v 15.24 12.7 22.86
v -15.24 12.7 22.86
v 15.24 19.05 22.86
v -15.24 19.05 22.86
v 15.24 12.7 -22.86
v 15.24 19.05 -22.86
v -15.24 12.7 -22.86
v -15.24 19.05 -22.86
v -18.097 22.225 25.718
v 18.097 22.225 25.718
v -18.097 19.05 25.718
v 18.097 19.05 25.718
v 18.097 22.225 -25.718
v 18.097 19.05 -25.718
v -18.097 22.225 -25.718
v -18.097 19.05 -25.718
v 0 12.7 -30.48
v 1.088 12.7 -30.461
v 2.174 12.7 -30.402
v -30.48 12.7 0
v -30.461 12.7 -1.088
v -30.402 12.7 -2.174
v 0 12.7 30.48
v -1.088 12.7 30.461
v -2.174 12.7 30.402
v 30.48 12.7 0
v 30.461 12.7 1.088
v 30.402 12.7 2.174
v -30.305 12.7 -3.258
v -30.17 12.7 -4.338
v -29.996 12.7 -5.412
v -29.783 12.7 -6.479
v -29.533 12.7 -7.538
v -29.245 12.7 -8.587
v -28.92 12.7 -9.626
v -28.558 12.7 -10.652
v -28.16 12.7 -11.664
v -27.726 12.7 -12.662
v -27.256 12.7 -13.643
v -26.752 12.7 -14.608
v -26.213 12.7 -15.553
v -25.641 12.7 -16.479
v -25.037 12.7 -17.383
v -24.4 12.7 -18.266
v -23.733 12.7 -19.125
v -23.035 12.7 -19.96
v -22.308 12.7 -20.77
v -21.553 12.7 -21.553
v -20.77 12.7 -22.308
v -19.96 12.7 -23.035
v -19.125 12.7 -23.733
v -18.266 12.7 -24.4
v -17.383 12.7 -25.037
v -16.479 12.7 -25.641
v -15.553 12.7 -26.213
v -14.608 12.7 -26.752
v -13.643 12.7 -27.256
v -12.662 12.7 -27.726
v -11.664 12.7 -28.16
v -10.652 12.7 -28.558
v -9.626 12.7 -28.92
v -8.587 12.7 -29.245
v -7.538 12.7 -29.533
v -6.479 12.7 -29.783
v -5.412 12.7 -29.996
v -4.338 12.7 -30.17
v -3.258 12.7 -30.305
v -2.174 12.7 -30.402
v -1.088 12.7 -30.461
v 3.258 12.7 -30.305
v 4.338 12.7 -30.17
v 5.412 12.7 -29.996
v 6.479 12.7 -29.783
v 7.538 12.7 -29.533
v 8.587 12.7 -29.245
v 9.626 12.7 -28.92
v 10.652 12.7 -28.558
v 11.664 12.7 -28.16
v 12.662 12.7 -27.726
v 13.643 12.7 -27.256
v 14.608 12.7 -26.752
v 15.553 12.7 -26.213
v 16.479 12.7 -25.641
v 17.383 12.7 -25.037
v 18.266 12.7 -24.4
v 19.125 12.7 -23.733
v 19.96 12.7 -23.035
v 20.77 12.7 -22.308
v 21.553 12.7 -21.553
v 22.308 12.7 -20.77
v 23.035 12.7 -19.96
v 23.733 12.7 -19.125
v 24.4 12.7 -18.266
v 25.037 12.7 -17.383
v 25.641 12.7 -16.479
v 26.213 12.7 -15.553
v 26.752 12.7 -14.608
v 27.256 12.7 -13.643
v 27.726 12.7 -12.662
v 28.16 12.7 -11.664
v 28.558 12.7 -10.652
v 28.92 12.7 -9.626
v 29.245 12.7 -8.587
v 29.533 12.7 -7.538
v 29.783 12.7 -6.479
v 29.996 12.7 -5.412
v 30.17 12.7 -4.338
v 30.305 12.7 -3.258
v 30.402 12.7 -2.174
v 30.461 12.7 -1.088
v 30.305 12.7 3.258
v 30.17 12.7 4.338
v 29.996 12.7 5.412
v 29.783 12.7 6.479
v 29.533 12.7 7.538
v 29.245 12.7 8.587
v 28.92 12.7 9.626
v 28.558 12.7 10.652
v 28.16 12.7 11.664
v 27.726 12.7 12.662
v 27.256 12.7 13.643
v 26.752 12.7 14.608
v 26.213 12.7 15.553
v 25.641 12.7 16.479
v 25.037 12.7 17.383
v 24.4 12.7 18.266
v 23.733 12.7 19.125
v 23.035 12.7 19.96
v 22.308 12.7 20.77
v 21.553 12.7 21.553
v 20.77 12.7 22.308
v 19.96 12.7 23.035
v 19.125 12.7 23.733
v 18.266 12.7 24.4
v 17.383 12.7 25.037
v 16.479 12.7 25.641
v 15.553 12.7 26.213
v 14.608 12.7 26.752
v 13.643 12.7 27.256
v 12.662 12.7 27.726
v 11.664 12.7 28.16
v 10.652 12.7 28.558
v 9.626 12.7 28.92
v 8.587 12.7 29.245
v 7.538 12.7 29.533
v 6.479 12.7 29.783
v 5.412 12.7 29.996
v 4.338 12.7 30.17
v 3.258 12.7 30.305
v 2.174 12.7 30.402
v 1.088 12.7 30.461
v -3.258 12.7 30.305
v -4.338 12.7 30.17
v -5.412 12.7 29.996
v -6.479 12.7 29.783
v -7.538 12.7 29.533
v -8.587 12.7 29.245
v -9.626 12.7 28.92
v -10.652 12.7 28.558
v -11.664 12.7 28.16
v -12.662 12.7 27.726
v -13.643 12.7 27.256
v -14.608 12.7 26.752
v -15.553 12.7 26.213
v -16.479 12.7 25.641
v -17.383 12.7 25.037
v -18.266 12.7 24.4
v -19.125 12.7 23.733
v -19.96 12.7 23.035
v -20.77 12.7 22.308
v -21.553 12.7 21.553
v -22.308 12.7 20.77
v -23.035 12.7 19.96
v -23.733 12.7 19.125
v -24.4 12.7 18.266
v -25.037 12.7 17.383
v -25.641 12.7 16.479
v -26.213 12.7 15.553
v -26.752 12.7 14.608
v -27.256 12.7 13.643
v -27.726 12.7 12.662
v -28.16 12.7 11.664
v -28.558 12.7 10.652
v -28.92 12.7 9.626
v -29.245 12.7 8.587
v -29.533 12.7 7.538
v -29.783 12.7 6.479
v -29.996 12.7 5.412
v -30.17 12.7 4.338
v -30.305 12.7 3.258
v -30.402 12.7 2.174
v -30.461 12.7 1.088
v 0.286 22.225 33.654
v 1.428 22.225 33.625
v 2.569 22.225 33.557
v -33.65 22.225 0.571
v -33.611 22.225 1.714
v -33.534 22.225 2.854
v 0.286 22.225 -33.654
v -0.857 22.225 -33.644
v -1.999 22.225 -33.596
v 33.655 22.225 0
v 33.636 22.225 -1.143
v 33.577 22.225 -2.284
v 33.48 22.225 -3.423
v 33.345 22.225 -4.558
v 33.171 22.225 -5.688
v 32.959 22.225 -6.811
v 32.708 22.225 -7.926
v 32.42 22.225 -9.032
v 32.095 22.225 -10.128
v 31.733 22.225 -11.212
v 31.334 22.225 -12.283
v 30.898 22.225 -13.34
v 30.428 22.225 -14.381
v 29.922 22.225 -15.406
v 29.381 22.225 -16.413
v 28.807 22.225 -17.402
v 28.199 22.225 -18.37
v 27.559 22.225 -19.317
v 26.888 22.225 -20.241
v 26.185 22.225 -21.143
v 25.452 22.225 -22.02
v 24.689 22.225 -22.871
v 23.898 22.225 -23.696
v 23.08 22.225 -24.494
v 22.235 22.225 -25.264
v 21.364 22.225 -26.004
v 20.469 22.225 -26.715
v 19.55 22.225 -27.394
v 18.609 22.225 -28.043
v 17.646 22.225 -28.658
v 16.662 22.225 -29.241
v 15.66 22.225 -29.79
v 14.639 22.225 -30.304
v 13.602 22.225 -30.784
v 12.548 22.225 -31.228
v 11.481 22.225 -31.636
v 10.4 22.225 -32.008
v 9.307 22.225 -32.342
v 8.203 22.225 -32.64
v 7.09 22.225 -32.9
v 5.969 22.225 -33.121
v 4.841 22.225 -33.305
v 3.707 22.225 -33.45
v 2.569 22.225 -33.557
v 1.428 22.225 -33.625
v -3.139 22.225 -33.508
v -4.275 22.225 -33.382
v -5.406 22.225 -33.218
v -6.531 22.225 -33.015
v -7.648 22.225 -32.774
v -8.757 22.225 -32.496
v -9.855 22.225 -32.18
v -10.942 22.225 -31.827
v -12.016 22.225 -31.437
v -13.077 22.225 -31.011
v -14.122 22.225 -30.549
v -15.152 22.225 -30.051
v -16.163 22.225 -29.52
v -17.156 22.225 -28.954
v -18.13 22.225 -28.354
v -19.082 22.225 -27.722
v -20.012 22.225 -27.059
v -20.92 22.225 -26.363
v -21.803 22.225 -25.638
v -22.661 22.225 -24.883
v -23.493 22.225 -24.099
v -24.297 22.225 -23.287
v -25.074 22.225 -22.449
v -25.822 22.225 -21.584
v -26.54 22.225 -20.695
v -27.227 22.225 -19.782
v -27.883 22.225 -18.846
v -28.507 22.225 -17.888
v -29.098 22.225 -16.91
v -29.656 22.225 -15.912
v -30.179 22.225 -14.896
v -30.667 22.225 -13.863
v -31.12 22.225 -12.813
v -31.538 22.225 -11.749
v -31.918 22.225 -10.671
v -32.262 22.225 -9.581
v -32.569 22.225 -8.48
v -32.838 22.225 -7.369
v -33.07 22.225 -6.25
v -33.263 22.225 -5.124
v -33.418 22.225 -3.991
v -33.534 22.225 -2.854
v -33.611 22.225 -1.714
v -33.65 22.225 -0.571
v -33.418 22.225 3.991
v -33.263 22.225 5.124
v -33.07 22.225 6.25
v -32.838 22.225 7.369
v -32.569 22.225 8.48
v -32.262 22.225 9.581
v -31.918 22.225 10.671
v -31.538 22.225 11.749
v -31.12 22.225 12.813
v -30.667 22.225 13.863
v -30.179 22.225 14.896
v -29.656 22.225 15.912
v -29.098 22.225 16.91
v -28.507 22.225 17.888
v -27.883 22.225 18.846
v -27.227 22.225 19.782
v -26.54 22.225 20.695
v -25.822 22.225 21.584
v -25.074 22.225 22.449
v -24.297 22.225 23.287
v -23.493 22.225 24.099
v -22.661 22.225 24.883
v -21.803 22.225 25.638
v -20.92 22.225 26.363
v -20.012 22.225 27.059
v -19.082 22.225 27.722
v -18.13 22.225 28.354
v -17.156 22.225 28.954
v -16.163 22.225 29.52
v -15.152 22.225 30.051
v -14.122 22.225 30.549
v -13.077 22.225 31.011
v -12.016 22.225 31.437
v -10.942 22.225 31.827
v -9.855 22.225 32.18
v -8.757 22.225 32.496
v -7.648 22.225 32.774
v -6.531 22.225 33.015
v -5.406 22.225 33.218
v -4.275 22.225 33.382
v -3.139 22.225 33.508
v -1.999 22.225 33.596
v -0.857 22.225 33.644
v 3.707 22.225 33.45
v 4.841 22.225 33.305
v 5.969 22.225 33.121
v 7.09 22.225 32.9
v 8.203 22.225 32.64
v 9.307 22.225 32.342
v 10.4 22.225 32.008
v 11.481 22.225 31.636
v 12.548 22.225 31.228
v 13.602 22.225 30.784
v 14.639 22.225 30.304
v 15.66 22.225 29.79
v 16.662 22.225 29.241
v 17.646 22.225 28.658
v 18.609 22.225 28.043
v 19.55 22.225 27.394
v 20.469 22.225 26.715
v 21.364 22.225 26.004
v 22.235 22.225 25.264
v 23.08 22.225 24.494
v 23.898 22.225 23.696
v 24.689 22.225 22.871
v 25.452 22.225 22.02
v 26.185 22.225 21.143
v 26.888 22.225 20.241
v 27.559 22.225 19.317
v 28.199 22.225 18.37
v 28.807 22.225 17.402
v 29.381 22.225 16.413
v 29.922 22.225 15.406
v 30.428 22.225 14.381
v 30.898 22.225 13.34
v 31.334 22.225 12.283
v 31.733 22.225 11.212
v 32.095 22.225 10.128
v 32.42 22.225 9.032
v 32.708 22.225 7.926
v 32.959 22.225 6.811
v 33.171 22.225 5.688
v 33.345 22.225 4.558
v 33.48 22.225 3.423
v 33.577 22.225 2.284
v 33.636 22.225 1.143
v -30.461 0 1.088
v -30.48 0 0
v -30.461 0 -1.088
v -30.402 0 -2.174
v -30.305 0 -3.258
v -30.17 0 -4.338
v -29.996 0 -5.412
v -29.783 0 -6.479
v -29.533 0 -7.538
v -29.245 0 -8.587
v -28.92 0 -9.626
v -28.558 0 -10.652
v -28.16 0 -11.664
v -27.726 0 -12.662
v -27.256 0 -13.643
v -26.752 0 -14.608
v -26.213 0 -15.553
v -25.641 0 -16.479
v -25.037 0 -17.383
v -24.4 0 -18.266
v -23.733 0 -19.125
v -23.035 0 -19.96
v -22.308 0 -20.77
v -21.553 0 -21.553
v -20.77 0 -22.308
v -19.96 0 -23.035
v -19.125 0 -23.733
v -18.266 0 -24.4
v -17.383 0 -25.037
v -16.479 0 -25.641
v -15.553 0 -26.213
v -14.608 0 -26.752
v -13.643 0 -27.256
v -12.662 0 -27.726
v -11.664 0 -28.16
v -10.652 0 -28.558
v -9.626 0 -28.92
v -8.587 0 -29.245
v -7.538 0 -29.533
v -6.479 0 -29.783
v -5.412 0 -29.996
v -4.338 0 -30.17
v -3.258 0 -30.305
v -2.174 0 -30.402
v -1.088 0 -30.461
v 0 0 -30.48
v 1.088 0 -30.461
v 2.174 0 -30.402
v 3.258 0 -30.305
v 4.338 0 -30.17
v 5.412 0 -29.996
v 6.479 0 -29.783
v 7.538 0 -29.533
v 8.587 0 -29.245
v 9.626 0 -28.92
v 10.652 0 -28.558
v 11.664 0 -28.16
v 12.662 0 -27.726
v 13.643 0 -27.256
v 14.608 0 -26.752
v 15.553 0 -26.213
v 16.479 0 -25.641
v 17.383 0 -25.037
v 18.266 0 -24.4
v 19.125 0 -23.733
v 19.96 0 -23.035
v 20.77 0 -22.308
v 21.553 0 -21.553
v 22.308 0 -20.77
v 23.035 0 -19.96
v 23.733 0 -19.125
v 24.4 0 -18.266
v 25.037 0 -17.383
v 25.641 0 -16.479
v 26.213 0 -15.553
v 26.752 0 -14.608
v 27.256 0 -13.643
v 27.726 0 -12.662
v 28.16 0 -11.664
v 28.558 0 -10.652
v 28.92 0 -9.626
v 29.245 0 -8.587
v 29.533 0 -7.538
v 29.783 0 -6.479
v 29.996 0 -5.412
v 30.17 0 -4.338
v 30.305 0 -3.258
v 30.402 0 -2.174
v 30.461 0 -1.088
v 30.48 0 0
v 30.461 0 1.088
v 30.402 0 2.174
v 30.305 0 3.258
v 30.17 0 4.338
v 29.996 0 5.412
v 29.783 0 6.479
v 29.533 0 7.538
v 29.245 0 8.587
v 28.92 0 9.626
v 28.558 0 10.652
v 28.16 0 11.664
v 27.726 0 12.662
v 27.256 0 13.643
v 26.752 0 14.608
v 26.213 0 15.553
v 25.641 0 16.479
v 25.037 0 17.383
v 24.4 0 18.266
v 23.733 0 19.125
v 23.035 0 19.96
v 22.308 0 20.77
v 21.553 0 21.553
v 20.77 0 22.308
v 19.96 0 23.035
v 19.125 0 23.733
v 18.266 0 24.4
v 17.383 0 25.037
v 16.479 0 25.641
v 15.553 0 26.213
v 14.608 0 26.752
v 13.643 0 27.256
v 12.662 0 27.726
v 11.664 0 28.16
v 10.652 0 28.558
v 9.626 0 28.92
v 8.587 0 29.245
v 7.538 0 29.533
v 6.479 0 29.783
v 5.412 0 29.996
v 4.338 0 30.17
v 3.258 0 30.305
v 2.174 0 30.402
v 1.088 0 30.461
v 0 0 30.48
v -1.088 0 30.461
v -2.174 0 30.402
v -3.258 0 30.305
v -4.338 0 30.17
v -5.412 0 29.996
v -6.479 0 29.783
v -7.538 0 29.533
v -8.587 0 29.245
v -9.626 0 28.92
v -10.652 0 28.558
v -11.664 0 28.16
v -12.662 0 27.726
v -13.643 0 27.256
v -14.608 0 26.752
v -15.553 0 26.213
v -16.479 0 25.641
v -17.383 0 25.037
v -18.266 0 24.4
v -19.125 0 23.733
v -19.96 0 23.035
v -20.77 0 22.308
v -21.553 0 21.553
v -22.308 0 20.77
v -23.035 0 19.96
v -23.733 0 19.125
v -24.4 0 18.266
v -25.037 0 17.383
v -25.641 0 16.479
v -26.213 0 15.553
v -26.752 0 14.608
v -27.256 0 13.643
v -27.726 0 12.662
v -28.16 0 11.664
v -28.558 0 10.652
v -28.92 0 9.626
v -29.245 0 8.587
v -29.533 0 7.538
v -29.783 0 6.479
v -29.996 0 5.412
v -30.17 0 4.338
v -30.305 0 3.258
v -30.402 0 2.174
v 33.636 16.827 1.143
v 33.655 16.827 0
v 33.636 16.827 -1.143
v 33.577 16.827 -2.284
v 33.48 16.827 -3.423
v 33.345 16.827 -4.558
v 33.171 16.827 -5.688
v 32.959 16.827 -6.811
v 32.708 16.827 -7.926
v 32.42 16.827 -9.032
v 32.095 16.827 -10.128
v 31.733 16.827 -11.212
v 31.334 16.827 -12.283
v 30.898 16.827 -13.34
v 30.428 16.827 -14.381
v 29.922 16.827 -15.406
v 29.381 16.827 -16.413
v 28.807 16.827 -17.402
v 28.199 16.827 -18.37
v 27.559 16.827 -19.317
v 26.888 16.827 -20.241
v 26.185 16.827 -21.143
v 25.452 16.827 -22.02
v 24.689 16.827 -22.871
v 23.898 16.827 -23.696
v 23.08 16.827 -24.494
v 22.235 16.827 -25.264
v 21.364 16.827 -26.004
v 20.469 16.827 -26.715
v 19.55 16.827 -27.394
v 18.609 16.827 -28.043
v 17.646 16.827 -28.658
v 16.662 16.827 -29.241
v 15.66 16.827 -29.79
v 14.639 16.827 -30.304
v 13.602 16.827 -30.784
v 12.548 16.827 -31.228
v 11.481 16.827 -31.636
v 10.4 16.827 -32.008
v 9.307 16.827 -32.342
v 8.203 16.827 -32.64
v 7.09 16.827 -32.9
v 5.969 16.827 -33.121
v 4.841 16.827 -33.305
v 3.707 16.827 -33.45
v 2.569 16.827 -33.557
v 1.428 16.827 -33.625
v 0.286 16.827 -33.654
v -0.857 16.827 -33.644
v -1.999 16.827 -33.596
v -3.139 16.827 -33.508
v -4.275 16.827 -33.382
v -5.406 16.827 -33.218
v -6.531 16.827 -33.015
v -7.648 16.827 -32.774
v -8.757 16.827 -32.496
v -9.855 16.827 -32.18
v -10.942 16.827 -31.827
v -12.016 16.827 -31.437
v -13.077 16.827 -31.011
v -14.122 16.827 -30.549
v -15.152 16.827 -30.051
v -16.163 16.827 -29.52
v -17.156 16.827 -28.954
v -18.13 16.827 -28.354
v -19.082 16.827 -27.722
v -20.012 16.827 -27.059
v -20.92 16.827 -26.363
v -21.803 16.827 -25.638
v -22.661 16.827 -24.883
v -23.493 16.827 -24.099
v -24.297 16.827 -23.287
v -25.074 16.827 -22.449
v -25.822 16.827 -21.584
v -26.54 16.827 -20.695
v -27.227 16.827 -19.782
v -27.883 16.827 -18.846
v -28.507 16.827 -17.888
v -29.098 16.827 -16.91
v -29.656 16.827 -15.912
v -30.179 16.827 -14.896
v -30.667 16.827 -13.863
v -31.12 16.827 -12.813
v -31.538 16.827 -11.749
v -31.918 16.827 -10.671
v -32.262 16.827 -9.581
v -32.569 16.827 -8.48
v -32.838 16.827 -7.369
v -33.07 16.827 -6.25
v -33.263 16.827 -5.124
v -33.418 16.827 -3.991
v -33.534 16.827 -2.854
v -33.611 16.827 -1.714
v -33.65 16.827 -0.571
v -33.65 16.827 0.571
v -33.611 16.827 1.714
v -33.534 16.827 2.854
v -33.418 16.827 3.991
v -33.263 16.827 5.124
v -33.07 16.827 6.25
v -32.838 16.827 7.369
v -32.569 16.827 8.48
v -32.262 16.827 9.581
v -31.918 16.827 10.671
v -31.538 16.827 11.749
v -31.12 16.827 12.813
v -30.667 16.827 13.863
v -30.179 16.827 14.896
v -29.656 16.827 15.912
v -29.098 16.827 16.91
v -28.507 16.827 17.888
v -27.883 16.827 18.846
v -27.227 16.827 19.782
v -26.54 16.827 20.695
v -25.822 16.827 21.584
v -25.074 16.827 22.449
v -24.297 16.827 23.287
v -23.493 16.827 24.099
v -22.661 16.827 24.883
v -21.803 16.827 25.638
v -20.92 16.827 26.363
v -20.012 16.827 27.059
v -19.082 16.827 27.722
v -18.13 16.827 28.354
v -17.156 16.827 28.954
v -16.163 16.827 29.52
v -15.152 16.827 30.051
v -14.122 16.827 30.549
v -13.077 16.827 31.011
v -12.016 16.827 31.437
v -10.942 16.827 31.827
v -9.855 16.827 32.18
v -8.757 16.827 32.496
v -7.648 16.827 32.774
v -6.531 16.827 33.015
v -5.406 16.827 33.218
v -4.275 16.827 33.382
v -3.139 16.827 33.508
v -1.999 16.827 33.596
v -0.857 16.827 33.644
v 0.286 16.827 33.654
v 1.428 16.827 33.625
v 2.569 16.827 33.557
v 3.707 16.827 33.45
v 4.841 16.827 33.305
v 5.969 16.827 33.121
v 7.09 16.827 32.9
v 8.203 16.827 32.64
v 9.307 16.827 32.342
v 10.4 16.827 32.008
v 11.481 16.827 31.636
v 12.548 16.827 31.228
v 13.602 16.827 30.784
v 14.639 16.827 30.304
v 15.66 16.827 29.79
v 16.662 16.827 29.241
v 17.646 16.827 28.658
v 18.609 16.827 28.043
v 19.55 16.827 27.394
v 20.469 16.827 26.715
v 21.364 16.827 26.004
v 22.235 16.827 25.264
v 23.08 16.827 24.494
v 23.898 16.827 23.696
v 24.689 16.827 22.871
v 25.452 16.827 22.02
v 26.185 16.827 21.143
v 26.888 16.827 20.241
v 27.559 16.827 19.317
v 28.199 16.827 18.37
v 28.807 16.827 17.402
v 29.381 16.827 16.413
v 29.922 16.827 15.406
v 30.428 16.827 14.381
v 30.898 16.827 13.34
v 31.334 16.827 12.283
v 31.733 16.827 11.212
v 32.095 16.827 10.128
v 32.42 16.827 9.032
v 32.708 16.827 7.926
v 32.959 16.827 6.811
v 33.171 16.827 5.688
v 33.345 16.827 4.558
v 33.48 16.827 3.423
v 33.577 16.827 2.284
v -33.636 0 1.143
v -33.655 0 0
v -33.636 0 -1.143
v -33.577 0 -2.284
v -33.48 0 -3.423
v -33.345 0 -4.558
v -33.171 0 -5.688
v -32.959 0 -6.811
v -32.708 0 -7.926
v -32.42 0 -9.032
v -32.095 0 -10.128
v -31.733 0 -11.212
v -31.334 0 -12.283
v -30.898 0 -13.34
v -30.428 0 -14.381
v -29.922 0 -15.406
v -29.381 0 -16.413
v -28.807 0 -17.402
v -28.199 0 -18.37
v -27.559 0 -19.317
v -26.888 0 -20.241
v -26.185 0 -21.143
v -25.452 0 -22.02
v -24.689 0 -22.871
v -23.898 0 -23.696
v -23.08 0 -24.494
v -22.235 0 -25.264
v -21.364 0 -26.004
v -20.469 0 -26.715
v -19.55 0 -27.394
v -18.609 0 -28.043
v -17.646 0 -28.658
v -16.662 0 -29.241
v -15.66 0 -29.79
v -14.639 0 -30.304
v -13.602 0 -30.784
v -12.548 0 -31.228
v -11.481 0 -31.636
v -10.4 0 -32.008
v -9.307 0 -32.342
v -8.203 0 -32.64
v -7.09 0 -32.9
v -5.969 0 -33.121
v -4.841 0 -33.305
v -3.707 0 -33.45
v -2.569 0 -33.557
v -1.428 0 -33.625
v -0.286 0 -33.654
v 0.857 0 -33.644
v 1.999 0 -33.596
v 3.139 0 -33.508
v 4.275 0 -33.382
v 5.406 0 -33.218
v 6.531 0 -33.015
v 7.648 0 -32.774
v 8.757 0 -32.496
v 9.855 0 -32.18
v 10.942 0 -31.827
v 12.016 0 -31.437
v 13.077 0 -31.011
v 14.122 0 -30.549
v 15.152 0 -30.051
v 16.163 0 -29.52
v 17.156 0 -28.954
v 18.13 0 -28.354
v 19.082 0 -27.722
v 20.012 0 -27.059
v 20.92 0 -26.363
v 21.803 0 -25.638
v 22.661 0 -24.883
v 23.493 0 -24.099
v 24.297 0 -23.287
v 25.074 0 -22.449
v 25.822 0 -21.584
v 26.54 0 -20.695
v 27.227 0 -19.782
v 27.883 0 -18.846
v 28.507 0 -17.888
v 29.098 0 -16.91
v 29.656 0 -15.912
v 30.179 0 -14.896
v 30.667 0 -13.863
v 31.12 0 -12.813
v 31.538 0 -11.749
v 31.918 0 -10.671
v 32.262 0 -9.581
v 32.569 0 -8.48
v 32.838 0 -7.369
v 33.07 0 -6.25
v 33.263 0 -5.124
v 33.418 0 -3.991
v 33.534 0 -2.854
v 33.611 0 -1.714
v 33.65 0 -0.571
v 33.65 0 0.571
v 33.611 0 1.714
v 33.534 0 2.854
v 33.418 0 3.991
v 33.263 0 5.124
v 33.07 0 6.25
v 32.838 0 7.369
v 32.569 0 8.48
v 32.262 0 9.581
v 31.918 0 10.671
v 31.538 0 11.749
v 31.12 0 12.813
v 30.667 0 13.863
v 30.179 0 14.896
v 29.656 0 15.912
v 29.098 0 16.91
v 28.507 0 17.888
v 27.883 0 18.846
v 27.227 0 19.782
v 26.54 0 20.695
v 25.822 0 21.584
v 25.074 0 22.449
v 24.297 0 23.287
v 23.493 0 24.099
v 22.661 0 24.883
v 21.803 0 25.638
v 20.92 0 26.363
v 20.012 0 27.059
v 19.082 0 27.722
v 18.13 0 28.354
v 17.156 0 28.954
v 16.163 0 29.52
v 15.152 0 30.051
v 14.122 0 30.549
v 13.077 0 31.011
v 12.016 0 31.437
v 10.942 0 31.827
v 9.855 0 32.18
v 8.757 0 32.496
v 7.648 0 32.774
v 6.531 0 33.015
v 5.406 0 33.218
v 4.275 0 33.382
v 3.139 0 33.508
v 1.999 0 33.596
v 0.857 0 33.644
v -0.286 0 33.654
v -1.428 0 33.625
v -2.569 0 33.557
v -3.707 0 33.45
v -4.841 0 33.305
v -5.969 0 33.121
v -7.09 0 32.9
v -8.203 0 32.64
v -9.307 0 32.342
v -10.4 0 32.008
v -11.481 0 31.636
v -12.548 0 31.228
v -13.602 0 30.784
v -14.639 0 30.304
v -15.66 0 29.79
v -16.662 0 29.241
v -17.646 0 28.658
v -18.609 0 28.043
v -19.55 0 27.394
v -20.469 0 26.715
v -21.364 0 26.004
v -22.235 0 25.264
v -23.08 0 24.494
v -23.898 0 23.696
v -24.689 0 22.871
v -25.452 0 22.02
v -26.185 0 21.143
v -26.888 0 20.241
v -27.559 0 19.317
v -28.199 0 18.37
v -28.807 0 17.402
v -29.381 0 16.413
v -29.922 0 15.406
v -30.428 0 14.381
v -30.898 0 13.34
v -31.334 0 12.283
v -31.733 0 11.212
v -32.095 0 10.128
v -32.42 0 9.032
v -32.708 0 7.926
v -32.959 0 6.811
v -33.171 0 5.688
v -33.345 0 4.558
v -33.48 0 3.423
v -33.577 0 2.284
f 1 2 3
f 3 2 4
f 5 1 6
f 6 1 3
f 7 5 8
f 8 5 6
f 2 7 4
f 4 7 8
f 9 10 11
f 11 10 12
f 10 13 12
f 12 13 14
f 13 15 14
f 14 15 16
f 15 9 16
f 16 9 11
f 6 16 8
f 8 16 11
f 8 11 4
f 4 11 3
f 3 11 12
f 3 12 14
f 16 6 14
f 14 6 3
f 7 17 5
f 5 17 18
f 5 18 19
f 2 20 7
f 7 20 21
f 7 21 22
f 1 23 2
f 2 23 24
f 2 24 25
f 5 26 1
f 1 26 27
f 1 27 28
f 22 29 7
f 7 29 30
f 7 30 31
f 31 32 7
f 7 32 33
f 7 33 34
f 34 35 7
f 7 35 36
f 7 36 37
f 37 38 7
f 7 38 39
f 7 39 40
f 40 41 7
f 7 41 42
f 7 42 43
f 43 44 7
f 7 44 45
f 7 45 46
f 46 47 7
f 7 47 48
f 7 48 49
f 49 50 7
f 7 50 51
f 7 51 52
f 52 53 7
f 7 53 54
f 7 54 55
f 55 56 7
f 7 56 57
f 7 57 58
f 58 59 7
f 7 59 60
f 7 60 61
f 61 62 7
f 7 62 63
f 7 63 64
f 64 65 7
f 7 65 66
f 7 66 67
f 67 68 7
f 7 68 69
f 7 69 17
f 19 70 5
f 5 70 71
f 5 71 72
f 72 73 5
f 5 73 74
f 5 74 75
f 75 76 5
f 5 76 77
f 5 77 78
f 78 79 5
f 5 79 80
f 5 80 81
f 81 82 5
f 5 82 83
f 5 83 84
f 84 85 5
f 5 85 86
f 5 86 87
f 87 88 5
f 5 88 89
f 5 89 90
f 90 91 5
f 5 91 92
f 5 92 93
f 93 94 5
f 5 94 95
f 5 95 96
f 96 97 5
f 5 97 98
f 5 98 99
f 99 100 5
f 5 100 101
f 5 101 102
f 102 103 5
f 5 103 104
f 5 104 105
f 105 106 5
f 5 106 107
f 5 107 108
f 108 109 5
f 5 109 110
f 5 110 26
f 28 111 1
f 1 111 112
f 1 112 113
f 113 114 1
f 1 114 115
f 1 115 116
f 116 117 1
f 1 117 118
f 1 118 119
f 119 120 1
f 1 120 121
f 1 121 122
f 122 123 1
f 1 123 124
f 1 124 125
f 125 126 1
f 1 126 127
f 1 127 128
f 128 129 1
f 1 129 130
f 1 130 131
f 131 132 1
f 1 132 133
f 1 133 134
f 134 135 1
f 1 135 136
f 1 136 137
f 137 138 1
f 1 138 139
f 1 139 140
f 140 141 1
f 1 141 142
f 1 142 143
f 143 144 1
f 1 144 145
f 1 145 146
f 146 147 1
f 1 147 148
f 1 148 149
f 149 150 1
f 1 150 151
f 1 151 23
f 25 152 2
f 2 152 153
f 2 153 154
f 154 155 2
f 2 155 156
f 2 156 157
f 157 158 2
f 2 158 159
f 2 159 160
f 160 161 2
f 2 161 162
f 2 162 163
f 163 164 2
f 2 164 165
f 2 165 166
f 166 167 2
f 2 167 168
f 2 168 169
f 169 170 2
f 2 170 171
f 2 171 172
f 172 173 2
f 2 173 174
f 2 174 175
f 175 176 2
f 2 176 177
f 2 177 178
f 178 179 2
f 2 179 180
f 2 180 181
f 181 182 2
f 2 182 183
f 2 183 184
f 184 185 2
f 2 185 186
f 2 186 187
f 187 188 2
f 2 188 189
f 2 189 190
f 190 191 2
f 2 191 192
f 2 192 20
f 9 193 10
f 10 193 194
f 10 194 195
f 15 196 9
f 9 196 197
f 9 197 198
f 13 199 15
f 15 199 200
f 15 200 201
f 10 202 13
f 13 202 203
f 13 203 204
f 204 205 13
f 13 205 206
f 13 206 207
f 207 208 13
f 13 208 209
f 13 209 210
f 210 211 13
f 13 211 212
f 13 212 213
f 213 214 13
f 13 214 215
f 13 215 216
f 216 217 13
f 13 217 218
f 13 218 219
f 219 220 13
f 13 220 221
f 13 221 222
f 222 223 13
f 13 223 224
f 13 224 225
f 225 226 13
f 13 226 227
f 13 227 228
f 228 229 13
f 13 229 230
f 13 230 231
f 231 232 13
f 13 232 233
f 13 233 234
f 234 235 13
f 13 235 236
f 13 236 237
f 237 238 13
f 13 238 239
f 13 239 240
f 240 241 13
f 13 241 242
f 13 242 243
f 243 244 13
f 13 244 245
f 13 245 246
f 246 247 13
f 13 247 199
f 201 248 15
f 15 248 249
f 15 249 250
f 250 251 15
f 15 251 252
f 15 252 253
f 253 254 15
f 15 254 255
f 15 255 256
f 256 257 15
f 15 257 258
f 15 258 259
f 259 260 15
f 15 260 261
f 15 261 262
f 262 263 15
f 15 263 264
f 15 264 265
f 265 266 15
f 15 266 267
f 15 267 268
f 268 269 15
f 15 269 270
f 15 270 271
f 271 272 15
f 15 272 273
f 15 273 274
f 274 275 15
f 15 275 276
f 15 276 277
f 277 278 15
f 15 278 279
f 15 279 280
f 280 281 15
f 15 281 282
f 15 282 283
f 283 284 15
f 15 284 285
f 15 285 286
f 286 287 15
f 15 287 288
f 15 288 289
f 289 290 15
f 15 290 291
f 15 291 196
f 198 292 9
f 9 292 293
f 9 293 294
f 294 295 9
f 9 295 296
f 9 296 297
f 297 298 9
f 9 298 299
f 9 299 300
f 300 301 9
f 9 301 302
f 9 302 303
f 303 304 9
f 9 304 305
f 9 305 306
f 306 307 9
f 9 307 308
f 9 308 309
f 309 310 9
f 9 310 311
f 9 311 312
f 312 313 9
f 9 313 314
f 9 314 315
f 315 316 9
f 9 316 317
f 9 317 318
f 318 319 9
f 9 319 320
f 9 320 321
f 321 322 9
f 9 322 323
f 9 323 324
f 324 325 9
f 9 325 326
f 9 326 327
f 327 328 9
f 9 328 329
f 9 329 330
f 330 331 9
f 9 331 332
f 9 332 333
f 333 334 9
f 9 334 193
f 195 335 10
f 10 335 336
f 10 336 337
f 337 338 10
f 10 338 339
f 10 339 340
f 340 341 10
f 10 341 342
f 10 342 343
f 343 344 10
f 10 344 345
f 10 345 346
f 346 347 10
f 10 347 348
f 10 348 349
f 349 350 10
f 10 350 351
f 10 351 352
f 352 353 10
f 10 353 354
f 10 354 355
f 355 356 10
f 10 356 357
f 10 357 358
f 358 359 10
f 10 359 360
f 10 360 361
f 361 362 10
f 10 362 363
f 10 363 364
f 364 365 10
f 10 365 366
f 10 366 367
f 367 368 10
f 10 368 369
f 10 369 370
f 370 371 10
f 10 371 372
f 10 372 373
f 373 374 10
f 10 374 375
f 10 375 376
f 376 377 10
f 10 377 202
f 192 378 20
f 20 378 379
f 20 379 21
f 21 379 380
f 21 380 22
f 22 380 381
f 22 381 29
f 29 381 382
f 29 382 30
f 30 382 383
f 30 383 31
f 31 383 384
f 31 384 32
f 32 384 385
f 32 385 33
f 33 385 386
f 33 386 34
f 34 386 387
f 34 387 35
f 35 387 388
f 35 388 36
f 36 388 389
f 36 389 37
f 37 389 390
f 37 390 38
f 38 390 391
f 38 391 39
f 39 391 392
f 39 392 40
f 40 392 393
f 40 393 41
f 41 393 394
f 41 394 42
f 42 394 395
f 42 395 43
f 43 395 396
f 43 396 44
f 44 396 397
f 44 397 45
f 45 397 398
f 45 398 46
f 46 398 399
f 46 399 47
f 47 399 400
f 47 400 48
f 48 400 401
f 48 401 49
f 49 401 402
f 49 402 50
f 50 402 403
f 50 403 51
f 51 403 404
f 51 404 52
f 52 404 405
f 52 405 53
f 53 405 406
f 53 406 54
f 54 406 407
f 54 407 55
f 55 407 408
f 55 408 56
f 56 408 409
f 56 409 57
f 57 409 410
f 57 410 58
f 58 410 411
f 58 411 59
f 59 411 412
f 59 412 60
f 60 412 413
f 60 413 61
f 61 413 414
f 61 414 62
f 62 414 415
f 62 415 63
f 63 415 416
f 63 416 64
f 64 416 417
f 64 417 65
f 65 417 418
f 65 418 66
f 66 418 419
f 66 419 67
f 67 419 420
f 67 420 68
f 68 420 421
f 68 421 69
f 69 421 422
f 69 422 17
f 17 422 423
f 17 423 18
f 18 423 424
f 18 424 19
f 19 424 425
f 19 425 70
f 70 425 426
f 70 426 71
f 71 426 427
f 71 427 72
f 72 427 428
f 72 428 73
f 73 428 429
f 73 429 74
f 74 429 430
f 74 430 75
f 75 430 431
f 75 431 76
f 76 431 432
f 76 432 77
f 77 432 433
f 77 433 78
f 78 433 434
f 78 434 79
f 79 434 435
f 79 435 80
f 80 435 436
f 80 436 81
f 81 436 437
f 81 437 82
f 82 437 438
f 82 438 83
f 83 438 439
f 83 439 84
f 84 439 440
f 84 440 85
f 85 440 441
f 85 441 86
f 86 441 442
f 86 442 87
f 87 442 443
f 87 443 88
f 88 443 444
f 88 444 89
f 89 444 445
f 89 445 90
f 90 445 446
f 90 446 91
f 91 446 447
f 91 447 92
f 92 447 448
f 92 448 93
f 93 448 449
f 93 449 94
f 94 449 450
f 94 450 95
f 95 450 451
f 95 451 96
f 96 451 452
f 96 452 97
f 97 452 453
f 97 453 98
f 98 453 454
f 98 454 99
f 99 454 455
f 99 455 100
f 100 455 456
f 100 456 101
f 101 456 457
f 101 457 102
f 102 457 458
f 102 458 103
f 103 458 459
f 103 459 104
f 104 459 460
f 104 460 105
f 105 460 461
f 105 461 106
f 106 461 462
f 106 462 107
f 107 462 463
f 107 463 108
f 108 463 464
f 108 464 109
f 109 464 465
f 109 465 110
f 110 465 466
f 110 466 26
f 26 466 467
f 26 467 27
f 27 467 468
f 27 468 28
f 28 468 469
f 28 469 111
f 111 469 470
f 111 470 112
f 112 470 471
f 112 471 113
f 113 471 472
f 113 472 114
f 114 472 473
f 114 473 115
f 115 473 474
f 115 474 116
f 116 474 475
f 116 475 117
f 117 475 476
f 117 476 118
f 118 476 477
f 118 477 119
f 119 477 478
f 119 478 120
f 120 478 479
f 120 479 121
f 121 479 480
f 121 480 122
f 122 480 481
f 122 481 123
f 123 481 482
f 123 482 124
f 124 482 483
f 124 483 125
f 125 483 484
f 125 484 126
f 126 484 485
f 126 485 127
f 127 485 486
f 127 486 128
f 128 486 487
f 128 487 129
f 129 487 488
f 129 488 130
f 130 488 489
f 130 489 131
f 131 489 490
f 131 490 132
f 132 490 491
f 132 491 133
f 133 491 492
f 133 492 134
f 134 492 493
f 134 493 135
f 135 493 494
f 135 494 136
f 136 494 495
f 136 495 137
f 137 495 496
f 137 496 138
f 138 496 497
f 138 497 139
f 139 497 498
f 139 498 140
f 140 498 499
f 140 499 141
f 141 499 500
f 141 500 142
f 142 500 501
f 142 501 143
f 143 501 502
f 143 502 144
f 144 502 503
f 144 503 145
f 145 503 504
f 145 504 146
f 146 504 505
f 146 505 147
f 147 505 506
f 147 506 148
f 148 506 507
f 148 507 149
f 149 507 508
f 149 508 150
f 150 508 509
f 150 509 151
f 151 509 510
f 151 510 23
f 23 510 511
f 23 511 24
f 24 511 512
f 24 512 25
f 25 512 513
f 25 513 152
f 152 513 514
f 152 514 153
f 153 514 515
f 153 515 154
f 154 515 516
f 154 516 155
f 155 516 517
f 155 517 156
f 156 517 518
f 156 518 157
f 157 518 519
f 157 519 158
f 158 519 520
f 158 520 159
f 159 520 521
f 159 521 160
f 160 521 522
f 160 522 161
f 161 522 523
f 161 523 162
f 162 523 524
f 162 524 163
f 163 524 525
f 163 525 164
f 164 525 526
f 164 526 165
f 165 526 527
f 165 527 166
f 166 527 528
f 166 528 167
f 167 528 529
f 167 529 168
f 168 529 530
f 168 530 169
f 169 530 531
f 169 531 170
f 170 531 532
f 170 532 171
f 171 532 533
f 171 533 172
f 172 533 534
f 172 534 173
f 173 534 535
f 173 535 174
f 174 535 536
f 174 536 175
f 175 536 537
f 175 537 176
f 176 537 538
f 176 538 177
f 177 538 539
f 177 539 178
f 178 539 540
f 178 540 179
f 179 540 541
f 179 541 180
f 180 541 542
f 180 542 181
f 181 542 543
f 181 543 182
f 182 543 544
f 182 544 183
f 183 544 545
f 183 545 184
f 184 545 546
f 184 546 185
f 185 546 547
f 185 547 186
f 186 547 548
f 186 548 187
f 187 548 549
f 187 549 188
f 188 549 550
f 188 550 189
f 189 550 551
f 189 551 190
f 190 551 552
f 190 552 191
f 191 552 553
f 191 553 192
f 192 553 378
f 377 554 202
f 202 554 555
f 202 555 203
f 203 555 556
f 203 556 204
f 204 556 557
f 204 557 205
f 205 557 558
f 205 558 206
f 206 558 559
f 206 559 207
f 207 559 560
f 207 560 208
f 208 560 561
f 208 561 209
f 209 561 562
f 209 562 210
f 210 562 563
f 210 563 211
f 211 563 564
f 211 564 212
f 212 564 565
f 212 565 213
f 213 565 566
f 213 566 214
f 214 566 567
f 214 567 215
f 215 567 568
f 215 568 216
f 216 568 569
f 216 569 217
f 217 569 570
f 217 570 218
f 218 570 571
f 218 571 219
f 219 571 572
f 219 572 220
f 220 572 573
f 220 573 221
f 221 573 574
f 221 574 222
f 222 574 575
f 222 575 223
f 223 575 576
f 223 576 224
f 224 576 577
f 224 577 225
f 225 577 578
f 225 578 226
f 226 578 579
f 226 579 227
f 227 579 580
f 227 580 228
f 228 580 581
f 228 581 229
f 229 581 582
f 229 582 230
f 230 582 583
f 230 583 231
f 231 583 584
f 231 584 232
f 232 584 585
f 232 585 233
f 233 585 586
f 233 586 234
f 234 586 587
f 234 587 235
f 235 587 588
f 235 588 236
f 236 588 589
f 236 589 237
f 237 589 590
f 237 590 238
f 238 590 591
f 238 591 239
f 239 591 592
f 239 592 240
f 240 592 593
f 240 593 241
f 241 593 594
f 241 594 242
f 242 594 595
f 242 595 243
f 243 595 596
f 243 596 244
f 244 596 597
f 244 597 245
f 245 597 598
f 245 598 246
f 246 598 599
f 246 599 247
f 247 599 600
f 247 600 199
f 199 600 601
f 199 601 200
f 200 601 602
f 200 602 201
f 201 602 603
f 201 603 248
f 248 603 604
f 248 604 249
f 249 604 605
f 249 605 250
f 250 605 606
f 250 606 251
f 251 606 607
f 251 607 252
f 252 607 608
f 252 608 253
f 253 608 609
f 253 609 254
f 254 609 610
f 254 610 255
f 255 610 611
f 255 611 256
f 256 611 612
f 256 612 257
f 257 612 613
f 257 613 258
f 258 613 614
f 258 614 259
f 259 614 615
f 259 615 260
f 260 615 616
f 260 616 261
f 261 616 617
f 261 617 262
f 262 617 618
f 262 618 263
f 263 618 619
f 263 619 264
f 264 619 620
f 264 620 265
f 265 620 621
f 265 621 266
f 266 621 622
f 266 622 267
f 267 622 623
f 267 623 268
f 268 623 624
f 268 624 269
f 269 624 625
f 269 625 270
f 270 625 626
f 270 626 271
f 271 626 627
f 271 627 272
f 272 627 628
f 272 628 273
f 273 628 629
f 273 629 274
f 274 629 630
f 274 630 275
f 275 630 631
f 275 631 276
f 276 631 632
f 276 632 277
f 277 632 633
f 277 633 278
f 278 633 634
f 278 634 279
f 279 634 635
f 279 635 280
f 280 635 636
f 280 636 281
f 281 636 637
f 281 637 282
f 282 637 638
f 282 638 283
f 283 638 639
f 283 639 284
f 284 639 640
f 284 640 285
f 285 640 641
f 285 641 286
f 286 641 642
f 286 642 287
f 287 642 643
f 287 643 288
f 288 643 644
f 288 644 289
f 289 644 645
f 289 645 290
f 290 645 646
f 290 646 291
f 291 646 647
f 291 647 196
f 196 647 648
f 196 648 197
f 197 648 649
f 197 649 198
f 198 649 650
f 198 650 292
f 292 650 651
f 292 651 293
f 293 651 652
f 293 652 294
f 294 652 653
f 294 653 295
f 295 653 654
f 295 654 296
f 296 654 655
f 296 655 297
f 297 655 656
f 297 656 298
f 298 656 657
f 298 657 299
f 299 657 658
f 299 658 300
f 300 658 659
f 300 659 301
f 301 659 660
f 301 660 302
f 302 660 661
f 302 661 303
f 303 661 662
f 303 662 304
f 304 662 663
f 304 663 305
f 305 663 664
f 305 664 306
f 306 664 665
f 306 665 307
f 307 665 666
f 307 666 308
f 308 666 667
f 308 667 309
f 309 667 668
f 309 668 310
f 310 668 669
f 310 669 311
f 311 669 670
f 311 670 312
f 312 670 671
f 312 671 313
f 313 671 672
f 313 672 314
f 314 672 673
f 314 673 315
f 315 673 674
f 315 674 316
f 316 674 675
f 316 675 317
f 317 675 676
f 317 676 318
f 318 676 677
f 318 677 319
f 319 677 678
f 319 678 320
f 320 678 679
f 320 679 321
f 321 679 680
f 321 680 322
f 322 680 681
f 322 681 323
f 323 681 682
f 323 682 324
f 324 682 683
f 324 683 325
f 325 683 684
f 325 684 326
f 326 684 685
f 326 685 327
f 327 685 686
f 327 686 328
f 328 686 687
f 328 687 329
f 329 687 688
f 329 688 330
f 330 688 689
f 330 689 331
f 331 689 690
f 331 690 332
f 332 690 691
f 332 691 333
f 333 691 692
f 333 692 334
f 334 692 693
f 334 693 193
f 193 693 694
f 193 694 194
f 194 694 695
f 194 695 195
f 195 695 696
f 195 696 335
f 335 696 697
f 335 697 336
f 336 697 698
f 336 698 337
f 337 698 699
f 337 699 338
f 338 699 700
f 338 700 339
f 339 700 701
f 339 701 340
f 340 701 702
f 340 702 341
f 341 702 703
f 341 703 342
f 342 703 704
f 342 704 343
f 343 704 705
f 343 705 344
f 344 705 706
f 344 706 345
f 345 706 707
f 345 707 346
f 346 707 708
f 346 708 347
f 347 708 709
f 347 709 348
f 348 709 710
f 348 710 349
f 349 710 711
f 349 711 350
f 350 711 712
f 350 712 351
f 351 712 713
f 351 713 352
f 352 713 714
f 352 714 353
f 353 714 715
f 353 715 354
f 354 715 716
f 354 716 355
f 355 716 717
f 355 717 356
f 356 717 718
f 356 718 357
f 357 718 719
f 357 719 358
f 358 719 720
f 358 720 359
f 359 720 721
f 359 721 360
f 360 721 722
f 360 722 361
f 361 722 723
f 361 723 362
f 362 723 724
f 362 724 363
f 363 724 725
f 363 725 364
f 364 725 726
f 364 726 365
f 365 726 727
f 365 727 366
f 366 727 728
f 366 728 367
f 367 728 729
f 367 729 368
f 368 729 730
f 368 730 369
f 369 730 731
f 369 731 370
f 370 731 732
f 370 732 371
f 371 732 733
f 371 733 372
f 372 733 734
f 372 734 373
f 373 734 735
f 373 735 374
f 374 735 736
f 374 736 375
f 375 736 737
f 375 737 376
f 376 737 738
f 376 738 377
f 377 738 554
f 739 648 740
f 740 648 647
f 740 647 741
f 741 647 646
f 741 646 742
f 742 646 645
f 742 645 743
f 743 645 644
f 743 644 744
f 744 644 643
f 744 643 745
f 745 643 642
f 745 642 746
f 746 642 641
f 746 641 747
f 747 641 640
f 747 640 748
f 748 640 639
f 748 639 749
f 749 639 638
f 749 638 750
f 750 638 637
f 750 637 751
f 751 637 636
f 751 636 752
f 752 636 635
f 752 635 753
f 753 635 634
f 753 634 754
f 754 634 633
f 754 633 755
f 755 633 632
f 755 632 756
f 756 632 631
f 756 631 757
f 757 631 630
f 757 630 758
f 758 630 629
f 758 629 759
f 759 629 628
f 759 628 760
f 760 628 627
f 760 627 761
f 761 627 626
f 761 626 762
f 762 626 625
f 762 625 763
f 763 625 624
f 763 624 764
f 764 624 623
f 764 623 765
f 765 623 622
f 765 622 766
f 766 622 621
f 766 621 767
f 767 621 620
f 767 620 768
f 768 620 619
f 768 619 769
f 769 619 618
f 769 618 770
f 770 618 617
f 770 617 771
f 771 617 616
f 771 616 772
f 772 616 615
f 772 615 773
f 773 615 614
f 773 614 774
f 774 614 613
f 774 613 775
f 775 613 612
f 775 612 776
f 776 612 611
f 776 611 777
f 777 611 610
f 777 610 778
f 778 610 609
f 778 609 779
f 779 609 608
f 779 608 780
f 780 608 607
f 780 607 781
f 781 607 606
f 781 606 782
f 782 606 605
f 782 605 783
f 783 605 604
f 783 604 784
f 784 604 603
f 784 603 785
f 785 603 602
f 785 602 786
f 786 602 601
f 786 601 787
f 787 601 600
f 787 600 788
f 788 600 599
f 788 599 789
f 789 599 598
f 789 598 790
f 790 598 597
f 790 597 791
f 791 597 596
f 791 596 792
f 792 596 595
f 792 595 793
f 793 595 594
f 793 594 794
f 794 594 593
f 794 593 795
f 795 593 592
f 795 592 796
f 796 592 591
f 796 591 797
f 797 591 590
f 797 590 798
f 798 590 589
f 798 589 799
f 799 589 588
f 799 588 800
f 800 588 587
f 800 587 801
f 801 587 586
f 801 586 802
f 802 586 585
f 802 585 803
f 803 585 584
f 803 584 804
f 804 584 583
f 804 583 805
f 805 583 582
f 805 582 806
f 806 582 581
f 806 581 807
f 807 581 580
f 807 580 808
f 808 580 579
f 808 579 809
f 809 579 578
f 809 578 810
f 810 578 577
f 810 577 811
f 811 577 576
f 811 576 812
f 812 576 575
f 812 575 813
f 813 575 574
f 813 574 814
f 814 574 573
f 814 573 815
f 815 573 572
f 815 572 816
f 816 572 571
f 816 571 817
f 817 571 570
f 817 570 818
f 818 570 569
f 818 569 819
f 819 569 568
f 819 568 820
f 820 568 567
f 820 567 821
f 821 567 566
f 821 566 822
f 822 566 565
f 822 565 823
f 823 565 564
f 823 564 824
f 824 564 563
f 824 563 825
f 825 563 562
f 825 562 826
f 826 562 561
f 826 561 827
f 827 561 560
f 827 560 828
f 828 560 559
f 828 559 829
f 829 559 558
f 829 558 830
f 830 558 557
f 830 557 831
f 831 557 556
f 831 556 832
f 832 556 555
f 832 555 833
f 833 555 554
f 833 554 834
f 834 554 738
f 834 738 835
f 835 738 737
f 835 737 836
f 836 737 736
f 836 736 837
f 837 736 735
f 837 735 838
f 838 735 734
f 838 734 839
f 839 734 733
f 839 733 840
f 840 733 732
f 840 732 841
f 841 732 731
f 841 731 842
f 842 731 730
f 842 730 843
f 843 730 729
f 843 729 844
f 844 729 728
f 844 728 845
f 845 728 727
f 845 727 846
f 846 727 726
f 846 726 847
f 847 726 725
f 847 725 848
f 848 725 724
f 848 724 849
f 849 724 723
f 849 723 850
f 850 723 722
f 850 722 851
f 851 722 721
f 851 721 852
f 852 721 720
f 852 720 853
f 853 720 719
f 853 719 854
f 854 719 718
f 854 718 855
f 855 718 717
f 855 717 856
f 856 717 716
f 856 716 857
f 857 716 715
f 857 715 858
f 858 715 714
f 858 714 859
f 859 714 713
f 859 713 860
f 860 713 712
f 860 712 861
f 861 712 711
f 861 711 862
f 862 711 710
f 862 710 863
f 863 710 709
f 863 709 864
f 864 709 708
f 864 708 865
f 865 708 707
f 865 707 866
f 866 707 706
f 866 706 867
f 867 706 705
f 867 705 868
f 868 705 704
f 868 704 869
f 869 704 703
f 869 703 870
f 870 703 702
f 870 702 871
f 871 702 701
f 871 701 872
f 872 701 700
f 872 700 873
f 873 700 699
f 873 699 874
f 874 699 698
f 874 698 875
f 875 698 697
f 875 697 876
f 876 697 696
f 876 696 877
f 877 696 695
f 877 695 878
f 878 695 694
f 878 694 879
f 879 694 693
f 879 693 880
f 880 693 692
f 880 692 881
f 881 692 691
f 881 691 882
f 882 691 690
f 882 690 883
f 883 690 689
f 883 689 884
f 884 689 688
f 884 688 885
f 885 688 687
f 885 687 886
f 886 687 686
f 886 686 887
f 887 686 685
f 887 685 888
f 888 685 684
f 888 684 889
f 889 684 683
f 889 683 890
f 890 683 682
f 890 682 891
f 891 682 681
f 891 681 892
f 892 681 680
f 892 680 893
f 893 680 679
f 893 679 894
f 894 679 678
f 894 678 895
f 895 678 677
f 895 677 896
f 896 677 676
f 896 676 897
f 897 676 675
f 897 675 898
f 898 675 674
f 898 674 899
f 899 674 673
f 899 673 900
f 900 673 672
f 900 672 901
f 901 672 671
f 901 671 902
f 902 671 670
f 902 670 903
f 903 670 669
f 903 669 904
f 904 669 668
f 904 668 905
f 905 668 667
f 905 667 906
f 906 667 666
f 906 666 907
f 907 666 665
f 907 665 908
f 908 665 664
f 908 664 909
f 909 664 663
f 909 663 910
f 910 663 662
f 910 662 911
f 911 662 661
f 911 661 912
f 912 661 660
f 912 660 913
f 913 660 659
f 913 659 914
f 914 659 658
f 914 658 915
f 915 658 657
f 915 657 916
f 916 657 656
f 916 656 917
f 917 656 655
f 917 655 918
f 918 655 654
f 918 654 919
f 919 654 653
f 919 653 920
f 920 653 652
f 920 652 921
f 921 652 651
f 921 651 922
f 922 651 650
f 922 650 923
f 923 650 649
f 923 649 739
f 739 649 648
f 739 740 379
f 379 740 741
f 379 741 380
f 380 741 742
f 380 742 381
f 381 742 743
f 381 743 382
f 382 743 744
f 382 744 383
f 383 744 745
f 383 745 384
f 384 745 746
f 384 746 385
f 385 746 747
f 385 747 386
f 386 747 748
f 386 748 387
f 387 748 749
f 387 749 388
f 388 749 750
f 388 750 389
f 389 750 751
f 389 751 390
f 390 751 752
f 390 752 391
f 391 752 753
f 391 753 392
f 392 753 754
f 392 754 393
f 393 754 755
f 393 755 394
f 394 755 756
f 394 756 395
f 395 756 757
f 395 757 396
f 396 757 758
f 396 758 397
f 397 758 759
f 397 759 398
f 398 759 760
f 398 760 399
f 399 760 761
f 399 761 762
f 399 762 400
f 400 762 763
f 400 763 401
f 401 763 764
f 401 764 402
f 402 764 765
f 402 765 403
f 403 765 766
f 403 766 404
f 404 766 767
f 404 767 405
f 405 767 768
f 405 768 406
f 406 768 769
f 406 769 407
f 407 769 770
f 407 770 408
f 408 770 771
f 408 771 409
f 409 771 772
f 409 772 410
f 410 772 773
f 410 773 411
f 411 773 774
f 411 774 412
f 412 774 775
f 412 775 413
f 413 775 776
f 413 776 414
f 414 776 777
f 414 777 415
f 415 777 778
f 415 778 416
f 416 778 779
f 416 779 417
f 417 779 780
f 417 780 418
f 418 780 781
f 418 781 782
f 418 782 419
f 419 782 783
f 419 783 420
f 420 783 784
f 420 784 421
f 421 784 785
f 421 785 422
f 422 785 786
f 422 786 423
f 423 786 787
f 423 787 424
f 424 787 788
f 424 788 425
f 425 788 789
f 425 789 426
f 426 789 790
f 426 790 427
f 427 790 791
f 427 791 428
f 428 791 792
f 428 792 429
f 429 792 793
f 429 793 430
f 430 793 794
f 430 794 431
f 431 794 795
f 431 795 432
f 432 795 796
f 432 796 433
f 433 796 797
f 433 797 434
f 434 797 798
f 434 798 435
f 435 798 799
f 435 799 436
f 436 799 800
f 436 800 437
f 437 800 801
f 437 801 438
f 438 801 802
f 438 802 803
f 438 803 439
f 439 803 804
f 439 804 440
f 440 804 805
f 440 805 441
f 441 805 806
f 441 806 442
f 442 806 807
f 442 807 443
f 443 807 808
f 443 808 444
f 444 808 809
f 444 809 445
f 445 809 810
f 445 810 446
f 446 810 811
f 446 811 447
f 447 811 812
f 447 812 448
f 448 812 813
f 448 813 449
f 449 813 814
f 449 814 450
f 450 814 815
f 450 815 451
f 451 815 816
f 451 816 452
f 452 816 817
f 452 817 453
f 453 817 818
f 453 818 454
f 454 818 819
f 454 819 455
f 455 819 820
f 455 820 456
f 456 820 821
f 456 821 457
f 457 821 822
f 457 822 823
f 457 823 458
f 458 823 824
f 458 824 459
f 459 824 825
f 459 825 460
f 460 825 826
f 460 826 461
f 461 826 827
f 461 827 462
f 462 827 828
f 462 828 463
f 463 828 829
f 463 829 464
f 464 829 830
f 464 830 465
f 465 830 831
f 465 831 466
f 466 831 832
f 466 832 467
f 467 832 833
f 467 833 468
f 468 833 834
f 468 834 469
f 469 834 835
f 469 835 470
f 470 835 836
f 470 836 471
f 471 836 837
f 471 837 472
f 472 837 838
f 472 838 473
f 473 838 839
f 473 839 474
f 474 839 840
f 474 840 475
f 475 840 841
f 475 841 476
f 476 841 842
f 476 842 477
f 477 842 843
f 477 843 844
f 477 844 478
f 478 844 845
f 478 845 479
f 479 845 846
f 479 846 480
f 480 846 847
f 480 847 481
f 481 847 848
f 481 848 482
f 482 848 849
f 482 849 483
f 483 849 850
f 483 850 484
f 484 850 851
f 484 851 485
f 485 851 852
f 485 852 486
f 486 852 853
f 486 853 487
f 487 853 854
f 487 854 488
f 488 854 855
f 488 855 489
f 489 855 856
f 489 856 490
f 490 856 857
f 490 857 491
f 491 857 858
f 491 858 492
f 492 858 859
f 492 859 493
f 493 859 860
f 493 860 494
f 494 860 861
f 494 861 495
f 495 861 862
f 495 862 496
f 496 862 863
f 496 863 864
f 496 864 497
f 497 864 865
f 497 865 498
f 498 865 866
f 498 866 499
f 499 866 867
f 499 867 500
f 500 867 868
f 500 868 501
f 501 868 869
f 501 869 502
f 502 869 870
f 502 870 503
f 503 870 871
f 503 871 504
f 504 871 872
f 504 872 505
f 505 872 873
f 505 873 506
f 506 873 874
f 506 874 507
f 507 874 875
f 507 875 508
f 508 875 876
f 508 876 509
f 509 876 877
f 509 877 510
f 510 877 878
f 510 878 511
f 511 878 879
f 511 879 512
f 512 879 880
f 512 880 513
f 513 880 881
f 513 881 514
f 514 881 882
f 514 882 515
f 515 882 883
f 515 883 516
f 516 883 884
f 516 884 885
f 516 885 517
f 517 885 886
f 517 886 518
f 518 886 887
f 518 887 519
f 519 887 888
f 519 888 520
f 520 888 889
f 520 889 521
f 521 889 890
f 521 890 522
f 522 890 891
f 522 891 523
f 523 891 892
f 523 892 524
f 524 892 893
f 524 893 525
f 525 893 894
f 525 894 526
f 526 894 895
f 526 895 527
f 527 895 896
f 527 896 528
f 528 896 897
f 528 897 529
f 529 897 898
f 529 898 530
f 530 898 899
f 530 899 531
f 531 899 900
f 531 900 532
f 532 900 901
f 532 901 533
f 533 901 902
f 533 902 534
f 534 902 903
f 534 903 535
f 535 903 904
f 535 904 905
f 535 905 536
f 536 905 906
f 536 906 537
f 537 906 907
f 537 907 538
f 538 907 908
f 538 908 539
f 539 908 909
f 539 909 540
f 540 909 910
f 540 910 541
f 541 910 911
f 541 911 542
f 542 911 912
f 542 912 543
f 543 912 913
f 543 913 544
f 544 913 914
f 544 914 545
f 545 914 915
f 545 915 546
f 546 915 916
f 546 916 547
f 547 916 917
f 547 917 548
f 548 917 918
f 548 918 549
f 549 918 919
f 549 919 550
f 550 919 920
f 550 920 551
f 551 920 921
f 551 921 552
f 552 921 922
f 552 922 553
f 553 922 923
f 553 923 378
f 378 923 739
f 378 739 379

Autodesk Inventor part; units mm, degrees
ref_plane "YZ Plane" through (0, 0, 0) normal (1, 0, 0) x (0, 1, 0)
ref_plane "XZ Plane" through (0, 0, 0) normal (0, 1, 0) x (-1, 0, 0)
ref_plane "XY Plane" through (0, 0, 0) normal (0, 0, 1) x (1, 0, 0)
sketch "Sketch1" plane through (0, 0, 0) normal (0, 1, 0) x (-1, 0, 0)
  circle A0 centre (0, 0) radius 33.655
  circle A1 centre (0, 0) radius 30.48
  dimension "d0" = 67.31
  dimension "d1" = 60.96
extrude "Extrusion1" add sketch "Sketch1" along normal blind 12.7
sketch "Sketch2" plane through (0, 12.7, 0) normal (0, 1, 0) x (1, 0, 0)
  circle A0 centre (0, 0) radius 33.655
extrude "Extrusion2" add sketch "Sketch2" along normal blind 9.525
sketch "Sketch3" plane through (0, 22.225, 0) normal (0, 1, 0) x (1, 0, 0)
  line L0 (18.0975, -25.7175) -> (-18.0975, -25.7175)
  line L1 (-18.0975, -25.7175) -> (-18.0975, 25.7175)
  line L2 (-18.0975, 25.7175) -> (18.0975, 25.7175)
  line L3 (18.0975, 25.7175) -> (18.0975, -25.7175)
  line L4 (18.0975, -25.7175) -> (-18.0975, 25.7175) construction
  line L5 (-18.0975, -25.7175) -> (18.0975, 25.7175) construction
  point P0 (0, 0)
  dimension "d6" = 36.195
  dimension "d7" = 51.435
extrude "Extrusion3" cut sketch "Sketch3" against normal blind 3.175
sketch "Sketch4" plane through (0, 19.05, 0) normal (0, 1, 0) x (1, 0, 0)
  line L0 (15.24, -22.86) -> (-15.24, -22.86)
  line L1 (-15.24, -22.86) -> (-15.24, 22.86)
  line L2 (-15.24, 22.86) -> (15.24, 22.86)
  line L3 (15.24, 22.86) -> (15.24, -22.86)
  line L4 (15.24, -22.86) -> (-15.24, 22.86) construction
  line L5 (-15.24, -22.86) -> (15.24, 22.86) construction
  point P0 (0, 0)
  dimension "d10" = 30.48
  dimension "d11" = 45.72
extrude "Extrusion4" cut sketch "Sketch4" against normal through all
properties part number "Upper Collar"
